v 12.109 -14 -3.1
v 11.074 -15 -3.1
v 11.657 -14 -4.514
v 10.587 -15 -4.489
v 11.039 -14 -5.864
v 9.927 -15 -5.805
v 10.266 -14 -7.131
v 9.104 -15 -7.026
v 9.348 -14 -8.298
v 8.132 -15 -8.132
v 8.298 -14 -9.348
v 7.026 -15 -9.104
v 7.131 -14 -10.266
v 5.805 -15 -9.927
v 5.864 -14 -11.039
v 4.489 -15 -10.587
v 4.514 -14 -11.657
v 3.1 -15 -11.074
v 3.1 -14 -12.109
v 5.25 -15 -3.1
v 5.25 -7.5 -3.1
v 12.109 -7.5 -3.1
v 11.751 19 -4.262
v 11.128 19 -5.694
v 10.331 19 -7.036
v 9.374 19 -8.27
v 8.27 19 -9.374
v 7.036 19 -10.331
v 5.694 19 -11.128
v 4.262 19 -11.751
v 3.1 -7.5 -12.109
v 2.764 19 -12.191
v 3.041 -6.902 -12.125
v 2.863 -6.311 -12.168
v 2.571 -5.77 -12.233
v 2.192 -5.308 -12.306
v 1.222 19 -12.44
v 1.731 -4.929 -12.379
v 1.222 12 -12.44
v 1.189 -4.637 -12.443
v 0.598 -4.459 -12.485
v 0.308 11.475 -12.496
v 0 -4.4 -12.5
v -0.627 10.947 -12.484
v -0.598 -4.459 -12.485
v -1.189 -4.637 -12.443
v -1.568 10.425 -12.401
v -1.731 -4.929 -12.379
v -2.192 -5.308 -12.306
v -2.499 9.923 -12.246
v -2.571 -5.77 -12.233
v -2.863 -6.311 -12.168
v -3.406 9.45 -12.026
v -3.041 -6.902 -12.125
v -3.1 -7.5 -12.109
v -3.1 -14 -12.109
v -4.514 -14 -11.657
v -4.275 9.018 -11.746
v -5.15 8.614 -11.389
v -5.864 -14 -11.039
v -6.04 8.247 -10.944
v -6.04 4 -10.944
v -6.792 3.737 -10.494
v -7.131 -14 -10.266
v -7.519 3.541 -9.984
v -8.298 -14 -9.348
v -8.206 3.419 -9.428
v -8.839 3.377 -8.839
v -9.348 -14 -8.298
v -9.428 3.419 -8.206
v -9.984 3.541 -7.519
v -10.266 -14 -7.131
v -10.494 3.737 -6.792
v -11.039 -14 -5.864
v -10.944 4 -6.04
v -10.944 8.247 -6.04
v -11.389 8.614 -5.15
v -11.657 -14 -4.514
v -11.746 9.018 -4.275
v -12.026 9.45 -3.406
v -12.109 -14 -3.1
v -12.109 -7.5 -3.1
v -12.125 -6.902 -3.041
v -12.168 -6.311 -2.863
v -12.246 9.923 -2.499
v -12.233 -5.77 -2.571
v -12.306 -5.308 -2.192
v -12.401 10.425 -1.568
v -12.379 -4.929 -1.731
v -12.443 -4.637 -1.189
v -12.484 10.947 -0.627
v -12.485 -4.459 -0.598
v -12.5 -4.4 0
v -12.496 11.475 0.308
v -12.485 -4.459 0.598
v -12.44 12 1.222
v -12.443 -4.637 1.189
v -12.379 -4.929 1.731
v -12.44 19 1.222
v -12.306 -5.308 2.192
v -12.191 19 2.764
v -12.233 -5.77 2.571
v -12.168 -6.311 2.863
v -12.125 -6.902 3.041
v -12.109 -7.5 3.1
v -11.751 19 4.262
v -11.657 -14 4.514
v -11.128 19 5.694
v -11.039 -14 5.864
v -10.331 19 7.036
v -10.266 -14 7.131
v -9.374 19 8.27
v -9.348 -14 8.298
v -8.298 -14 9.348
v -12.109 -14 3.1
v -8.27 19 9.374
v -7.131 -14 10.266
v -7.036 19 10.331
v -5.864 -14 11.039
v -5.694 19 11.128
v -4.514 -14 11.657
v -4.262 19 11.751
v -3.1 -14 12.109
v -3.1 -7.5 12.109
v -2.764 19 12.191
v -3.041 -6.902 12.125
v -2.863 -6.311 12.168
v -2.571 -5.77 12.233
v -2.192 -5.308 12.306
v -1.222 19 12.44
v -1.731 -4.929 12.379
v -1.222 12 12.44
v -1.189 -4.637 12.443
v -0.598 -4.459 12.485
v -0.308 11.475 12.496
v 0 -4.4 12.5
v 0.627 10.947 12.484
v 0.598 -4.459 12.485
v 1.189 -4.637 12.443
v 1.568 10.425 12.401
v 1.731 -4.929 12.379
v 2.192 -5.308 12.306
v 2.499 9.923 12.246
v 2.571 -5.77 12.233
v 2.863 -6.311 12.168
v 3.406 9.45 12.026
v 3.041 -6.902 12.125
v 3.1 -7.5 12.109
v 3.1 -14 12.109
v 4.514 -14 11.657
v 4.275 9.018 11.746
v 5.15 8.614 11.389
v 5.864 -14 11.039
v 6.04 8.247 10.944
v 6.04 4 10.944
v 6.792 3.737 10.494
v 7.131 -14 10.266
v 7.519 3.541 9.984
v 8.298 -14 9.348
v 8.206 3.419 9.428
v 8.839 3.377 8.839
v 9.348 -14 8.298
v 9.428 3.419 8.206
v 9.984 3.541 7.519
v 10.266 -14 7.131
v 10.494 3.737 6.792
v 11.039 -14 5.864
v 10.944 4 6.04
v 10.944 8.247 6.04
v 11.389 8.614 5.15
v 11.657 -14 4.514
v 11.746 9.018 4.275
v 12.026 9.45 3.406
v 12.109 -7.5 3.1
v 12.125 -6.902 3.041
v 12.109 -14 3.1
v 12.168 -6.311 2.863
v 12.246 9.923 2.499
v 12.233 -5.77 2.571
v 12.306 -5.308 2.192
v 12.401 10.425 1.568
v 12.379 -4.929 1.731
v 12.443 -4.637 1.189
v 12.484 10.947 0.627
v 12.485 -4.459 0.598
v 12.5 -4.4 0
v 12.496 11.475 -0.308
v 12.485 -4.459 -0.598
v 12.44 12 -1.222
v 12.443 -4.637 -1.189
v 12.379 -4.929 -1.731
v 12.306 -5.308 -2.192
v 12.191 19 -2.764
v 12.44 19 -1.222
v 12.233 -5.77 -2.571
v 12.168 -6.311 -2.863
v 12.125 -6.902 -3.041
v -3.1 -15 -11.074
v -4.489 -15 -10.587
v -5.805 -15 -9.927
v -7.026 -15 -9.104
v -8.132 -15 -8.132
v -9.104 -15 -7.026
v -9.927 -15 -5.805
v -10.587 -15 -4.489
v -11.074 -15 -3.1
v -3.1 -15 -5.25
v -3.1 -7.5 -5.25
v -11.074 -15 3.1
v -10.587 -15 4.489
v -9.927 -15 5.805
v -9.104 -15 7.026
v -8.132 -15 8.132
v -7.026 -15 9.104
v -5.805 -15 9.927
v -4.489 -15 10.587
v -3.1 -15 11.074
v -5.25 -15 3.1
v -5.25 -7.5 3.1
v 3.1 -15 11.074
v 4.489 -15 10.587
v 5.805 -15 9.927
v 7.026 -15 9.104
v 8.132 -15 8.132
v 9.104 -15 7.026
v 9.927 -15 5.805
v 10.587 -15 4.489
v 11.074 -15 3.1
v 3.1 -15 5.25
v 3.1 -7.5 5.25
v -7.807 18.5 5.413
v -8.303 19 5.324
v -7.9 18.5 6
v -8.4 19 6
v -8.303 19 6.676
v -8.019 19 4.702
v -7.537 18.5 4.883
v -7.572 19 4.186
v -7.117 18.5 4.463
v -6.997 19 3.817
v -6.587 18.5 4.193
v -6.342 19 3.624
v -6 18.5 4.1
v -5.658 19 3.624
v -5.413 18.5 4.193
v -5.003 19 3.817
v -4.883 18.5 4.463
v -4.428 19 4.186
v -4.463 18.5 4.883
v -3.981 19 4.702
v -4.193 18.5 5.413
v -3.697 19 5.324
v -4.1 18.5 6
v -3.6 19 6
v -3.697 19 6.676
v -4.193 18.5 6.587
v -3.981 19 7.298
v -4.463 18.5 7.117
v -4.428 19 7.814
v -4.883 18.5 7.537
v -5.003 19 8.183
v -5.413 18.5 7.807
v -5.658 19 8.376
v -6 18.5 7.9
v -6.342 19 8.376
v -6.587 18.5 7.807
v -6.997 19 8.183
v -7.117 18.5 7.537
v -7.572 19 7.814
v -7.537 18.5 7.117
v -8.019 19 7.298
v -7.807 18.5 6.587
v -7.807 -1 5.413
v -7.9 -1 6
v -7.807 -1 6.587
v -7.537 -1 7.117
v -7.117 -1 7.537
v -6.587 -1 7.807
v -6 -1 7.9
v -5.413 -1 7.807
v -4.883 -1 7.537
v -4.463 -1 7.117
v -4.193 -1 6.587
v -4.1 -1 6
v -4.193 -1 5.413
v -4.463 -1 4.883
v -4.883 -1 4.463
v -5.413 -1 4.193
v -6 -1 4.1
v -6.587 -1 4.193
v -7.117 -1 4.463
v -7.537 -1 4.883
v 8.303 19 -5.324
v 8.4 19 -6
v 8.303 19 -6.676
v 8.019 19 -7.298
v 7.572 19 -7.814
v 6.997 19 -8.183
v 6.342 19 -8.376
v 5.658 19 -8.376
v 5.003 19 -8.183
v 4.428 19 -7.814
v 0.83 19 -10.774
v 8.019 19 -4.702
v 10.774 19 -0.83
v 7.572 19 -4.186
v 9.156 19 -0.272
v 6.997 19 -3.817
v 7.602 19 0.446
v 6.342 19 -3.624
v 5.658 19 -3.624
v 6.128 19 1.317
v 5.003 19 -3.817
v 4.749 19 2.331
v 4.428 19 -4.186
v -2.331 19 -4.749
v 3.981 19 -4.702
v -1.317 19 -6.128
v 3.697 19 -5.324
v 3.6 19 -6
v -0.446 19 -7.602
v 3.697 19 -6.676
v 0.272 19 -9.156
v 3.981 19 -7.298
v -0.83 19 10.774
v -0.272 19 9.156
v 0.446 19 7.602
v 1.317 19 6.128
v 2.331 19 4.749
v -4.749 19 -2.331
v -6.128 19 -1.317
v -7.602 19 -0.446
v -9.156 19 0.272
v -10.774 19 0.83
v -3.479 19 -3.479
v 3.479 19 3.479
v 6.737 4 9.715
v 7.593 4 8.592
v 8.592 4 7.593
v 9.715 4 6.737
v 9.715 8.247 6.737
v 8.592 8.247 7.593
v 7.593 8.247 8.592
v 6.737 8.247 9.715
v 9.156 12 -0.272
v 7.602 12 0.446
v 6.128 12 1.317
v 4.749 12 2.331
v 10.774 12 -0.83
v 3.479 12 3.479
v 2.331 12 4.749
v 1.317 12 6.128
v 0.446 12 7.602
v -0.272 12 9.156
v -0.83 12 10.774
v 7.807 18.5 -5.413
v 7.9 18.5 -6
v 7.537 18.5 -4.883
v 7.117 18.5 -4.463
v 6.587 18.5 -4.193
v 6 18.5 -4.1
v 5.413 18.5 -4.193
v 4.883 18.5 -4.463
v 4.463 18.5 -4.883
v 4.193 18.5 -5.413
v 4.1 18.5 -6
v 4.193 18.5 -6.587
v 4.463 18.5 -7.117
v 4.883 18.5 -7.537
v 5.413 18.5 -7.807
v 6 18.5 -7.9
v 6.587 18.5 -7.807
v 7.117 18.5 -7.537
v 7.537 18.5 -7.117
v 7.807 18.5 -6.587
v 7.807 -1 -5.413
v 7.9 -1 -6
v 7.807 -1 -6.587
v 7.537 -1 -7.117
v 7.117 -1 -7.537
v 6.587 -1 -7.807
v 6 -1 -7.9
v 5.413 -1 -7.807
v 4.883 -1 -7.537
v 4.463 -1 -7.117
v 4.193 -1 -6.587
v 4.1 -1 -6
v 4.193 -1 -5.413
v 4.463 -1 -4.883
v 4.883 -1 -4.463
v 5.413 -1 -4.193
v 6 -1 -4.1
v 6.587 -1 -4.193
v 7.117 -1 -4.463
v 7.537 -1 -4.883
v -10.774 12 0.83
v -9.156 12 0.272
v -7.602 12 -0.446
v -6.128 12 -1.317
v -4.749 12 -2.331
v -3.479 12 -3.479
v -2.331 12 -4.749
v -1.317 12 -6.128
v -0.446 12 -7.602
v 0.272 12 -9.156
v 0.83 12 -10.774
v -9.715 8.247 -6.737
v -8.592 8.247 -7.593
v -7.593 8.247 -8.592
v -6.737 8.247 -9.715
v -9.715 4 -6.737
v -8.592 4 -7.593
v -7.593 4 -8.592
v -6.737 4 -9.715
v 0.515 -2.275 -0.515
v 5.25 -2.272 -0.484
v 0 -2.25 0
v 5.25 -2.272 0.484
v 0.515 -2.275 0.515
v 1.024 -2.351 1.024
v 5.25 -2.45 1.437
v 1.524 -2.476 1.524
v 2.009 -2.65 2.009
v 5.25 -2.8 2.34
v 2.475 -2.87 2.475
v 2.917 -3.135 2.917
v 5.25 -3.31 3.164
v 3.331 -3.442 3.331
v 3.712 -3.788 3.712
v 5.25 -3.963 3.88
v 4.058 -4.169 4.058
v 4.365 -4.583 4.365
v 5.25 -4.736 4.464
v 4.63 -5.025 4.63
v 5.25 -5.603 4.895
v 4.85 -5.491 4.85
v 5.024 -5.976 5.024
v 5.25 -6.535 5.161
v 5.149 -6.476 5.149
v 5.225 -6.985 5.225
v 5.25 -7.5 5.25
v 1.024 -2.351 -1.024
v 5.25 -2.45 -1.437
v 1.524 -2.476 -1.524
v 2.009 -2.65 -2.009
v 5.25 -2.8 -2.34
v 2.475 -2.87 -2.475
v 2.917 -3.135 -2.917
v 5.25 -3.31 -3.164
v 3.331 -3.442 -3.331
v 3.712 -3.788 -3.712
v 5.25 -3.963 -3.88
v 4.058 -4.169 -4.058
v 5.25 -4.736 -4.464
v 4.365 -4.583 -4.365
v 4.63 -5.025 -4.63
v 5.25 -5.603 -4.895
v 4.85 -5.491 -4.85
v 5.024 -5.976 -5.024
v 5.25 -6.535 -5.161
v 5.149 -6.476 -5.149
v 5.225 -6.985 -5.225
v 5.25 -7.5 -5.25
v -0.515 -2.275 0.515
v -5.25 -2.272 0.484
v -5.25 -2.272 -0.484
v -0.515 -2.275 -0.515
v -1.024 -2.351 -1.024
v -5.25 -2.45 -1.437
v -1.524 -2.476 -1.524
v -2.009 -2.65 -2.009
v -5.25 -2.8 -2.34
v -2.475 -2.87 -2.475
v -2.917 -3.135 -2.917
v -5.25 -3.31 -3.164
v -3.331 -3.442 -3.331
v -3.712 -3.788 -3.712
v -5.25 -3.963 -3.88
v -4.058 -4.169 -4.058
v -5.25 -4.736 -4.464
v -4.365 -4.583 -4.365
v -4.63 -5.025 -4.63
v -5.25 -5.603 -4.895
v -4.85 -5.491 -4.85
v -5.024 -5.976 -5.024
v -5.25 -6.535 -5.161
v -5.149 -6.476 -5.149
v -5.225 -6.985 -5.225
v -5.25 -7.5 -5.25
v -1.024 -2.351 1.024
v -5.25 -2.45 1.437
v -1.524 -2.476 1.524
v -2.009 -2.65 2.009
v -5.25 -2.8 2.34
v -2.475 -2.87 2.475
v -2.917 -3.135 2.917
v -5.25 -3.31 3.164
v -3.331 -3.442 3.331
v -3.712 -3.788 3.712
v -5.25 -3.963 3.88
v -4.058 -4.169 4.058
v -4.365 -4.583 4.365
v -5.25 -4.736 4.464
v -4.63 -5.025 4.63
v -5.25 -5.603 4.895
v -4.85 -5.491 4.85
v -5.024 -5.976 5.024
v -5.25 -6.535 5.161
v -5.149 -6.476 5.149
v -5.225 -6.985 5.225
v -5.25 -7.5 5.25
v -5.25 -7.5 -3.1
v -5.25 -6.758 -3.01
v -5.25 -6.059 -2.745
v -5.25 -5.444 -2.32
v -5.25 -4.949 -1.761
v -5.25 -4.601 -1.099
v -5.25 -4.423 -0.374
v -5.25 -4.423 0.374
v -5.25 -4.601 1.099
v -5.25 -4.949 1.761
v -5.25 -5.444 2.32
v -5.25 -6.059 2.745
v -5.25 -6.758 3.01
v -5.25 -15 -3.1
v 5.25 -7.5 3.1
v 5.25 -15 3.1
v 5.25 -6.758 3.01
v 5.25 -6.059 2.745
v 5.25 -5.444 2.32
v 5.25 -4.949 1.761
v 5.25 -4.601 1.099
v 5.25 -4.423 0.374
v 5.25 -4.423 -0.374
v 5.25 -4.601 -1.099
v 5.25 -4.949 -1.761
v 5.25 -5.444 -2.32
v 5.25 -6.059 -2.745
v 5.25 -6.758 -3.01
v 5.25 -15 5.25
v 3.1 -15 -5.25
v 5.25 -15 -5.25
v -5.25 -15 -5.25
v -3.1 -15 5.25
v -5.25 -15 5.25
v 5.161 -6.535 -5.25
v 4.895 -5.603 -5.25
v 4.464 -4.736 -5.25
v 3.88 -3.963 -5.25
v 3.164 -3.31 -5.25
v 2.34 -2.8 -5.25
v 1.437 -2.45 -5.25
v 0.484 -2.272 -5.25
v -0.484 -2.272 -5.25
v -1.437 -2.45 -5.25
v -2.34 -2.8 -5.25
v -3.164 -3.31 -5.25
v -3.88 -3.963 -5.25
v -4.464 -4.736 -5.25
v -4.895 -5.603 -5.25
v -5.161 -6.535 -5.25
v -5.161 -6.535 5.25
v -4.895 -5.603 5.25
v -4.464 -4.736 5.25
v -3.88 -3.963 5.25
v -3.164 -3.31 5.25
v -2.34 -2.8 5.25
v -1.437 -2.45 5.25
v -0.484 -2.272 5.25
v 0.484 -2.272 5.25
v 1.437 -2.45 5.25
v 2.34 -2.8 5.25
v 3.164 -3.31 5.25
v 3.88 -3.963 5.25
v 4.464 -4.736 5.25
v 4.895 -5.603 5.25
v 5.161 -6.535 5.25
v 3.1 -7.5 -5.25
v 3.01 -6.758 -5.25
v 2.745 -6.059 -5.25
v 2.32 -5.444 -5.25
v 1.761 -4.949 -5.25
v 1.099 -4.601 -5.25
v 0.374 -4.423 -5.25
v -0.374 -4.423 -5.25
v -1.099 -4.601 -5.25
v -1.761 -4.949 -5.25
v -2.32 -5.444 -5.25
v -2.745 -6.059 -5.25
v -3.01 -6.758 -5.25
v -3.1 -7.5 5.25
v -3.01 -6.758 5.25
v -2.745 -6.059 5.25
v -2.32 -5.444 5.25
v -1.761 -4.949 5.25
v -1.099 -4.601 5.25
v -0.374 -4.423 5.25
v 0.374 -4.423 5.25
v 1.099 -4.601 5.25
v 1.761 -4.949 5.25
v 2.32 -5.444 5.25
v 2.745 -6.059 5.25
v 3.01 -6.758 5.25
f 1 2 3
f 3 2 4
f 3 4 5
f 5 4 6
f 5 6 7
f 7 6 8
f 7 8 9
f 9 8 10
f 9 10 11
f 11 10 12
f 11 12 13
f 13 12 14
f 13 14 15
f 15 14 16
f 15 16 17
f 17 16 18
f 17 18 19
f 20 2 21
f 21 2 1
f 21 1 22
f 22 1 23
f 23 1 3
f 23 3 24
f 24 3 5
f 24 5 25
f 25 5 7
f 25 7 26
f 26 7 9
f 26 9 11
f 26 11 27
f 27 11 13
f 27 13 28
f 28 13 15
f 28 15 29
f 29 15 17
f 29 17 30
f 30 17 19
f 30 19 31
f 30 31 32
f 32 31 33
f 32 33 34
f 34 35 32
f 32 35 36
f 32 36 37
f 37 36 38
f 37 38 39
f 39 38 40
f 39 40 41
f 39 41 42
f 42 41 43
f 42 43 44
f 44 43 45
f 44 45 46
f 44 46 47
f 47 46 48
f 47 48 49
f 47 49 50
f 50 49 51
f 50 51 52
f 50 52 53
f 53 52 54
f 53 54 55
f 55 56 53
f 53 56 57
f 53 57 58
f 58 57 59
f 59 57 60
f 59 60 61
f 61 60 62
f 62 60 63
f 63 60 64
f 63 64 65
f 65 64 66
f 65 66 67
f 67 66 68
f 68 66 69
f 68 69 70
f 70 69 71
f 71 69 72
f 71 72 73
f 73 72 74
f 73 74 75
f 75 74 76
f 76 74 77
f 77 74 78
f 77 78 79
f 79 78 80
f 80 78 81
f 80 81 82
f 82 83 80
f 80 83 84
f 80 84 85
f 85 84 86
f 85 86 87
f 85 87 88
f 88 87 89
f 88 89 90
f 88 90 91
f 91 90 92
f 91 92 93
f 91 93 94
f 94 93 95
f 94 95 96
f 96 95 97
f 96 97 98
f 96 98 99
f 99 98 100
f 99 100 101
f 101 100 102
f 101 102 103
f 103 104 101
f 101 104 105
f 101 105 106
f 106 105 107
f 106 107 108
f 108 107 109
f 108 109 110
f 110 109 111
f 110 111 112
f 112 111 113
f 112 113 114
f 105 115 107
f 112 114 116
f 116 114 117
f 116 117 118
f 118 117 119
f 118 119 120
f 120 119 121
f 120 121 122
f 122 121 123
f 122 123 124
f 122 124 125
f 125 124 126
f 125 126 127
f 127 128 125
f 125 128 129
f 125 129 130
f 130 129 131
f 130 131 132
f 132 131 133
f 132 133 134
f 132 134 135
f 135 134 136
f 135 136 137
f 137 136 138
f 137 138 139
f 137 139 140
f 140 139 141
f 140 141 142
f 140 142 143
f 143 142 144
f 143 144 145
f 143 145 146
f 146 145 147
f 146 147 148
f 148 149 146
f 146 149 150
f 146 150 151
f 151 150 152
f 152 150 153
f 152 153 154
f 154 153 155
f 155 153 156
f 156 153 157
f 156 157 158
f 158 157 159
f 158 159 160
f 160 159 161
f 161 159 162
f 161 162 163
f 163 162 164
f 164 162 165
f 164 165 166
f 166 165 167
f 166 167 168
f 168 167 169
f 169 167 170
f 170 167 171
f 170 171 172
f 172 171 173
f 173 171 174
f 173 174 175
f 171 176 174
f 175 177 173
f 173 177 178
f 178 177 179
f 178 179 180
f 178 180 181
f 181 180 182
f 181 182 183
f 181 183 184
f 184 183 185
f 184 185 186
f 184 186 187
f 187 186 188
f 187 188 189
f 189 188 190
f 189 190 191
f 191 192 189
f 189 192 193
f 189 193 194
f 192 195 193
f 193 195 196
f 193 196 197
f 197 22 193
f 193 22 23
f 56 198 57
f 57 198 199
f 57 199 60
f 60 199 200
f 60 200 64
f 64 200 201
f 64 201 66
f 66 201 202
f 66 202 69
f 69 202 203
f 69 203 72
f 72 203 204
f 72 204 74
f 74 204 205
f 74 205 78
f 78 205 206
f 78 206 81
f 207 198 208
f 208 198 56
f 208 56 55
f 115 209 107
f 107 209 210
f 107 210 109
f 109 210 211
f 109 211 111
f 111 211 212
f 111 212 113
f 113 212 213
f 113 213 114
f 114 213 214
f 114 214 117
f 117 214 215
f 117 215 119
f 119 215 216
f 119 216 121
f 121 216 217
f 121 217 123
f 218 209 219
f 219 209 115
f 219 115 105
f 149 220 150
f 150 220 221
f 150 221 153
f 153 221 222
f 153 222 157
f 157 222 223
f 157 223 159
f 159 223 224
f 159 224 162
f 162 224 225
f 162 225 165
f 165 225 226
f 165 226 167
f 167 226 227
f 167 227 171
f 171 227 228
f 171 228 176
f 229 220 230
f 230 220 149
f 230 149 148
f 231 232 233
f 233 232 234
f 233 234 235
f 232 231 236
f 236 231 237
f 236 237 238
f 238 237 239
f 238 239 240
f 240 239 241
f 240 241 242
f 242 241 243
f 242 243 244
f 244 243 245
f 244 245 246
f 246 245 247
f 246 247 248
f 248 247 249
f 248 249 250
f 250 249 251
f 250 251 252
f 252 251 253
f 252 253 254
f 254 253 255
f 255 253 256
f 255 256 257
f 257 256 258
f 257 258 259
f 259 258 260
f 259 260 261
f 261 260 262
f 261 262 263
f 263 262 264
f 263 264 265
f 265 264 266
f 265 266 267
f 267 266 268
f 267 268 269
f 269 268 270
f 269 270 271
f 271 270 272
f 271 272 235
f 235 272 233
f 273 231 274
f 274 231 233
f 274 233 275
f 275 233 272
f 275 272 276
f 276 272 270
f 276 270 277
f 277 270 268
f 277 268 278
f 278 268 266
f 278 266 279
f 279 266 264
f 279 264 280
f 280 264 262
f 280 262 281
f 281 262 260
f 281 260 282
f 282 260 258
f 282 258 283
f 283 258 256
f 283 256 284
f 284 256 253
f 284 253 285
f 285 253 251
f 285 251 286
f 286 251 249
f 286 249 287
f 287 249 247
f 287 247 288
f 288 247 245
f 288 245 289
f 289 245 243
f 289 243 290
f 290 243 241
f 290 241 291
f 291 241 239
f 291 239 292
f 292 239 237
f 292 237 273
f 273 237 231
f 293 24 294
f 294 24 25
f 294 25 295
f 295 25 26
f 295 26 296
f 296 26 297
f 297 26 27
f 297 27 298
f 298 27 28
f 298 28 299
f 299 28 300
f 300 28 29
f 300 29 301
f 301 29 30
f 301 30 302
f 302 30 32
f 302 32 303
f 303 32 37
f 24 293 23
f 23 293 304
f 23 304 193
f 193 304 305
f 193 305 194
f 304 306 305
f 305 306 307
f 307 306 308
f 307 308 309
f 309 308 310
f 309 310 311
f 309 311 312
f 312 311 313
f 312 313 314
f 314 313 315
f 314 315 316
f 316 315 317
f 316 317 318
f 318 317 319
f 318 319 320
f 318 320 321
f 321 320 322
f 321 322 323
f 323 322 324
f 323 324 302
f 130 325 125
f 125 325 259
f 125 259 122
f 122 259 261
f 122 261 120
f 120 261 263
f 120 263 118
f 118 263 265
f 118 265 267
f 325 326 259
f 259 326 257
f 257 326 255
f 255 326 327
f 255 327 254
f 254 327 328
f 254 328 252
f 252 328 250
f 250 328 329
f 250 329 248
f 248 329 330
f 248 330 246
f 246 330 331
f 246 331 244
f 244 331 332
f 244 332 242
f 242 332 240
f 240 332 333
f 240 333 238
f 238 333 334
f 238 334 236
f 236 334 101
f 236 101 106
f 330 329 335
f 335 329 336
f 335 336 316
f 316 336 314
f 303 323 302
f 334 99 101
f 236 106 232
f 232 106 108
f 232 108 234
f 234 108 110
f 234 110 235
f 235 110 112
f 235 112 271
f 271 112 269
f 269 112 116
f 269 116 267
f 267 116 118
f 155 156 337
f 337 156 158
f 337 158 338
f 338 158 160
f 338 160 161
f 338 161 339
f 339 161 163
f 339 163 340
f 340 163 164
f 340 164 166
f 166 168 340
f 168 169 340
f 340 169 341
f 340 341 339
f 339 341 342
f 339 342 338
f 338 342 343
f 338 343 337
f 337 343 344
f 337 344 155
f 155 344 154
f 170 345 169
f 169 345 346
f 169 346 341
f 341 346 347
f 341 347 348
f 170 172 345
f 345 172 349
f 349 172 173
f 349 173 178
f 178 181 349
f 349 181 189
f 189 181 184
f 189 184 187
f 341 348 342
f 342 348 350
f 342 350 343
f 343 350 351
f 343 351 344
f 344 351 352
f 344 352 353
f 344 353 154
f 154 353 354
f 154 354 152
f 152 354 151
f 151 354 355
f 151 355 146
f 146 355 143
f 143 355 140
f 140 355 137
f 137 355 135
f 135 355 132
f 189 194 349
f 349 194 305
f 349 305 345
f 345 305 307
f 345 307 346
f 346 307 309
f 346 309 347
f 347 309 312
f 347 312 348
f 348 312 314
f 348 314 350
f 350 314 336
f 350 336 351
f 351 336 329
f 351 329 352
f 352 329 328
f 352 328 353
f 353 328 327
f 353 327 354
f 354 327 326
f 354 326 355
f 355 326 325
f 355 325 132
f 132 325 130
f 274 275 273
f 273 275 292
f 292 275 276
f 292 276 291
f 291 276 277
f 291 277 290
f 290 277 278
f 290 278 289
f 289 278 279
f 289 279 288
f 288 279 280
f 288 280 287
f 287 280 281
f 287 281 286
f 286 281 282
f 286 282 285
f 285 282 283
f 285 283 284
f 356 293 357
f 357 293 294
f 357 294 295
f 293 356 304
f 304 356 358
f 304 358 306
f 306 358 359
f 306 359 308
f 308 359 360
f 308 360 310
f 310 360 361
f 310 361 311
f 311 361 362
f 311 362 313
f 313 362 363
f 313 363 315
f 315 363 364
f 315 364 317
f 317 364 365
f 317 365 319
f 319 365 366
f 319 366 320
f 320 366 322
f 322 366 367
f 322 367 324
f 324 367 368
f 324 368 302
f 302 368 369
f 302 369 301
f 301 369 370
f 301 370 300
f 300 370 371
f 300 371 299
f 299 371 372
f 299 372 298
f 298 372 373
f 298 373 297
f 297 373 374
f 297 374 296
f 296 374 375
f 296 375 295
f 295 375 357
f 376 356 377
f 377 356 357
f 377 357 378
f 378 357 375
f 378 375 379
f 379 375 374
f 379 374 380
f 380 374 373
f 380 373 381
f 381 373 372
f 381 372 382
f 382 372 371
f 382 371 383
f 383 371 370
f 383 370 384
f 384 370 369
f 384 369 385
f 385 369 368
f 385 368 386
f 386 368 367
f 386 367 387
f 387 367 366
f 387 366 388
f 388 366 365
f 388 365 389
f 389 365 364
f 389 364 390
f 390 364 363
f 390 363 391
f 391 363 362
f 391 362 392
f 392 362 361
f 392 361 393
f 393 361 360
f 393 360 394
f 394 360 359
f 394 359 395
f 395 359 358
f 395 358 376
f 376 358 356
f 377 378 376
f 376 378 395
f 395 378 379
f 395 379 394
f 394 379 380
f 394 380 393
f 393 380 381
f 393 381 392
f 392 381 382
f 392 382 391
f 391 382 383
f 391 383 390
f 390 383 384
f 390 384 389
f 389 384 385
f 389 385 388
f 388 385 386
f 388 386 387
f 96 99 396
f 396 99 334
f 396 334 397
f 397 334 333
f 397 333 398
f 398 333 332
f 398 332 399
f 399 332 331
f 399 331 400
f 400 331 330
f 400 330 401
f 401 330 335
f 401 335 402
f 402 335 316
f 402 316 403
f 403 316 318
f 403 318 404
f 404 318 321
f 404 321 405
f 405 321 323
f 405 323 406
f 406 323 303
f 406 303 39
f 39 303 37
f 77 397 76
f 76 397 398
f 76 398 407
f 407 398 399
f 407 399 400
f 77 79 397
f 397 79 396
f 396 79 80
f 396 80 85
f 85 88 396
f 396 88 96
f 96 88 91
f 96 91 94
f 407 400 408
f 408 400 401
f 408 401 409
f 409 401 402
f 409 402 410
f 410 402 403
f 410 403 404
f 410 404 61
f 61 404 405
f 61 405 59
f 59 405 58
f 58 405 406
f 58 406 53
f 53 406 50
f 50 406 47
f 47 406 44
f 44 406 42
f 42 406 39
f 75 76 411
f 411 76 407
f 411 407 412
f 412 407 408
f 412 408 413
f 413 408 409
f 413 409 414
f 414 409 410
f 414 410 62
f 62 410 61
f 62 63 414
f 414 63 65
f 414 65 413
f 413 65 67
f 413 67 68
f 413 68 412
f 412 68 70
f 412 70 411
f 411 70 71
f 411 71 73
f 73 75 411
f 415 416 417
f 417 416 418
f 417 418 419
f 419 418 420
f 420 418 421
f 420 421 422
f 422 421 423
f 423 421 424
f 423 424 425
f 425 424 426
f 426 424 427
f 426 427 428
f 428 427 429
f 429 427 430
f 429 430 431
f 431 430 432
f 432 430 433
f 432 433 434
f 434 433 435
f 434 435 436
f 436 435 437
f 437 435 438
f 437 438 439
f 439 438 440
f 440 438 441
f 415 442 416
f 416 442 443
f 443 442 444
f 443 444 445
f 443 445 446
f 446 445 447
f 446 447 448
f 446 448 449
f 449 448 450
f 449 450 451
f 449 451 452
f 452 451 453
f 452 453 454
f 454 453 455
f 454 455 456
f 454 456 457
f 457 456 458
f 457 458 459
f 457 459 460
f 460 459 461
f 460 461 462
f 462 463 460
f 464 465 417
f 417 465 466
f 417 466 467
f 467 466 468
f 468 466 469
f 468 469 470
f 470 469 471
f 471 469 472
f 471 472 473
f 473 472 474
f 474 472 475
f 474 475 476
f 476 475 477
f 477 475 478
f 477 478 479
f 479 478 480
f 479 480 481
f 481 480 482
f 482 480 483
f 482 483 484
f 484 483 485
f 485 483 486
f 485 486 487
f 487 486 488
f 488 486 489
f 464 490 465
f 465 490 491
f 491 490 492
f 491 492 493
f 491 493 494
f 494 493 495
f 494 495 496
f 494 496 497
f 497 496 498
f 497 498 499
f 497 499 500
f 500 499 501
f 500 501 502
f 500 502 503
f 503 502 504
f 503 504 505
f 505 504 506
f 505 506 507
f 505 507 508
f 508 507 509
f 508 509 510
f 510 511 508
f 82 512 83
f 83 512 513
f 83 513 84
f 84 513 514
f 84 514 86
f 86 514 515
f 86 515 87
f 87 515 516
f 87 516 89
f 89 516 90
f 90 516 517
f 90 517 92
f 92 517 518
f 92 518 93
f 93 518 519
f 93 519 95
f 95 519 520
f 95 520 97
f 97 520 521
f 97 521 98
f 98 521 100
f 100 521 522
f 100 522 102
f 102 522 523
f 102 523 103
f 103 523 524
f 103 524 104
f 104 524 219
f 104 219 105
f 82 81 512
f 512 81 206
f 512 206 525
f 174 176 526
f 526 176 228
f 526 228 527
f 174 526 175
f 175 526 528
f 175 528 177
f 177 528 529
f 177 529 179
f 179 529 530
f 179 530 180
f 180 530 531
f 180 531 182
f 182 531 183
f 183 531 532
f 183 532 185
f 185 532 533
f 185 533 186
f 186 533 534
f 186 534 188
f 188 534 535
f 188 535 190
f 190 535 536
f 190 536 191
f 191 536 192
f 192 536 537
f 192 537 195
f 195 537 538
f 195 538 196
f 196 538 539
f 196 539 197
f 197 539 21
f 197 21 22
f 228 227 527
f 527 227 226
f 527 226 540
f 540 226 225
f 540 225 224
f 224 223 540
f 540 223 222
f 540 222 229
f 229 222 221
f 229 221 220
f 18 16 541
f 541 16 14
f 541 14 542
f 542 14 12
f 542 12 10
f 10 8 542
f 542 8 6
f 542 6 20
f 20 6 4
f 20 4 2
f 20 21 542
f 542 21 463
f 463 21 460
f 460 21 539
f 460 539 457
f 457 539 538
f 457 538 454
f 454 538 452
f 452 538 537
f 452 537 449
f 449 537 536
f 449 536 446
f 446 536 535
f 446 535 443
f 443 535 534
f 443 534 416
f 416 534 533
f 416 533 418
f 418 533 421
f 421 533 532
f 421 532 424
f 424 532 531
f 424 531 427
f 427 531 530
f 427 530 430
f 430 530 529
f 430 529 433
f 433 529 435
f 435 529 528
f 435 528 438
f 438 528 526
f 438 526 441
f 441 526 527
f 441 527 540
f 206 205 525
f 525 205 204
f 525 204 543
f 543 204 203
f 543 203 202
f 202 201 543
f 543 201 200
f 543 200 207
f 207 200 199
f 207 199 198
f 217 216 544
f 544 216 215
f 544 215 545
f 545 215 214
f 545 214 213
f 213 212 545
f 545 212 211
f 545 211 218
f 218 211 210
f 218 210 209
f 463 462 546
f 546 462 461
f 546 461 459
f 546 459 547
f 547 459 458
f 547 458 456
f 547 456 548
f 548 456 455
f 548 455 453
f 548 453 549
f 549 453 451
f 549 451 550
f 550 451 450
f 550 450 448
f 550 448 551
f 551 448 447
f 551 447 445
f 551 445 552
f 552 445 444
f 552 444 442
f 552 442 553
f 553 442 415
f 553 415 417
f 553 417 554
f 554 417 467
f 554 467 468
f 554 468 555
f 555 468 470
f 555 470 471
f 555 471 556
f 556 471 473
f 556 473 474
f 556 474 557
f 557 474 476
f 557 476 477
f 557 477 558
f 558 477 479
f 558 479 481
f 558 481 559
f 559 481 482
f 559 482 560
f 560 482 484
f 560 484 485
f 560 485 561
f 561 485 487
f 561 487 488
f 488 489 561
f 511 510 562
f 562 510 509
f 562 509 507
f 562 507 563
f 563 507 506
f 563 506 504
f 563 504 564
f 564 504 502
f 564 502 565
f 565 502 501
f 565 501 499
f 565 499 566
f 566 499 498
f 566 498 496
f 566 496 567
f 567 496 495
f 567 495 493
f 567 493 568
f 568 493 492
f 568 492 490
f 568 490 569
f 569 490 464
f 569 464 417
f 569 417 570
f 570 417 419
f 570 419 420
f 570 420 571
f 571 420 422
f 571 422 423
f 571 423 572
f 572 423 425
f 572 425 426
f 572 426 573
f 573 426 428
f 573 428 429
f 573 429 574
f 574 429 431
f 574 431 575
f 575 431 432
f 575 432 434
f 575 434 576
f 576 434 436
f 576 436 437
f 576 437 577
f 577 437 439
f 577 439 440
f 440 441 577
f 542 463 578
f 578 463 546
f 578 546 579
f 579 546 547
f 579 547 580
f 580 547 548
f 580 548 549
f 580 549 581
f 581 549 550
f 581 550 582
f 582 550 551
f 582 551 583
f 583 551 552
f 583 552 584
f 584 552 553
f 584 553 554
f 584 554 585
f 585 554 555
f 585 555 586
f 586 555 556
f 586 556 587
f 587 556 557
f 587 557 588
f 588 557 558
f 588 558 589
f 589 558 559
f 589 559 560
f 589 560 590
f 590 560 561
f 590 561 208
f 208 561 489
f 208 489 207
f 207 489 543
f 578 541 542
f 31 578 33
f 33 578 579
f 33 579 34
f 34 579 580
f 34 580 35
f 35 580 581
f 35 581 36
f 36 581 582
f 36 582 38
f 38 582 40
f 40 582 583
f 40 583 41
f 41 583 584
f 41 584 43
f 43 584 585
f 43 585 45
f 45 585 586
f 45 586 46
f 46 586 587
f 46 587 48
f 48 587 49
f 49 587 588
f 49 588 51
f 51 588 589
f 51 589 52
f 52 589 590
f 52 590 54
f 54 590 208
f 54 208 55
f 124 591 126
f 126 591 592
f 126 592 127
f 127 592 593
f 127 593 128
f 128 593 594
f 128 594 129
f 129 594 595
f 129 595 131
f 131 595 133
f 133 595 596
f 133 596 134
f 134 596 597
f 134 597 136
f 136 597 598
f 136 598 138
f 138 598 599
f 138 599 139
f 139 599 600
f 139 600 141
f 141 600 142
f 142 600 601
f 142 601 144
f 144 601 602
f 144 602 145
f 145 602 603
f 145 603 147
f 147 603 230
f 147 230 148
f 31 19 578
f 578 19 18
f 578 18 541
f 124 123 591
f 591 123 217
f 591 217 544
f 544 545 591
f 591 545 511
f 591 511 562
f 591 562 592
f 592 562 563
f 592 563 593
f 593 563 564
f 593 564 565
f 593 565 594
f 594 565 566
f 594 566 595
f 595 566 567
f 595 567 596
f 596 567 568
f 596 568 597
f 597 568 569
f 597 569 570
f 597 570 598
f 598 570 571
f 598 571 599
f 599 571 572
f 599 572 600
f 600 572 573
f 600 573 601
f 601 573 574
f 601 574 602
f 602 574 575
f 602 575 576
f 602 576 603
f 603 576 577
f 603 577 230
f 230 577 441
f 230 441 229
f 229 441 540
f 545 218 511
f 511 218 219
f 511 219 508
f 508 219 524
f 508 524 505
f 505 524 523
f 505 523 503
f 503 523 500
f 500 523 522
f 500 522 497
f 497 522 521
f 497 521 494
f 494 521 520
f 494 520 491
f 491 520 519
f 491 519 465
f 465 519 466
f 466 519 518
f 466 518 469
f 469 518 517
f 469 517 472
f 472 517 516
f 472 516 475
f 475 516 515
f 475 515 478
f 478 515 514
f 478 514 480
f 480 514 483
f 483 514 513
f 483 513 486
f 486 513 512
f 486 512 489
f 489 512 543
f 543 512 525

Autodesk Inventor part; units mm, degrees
ref_plane "XZ Plane" through (0, 0, 0) normal (0, 1, 0) x (-1, 0, 0)
sketch "Sketch1" plane through (0, 0, 0) normal (0, 1, 0) x (-1, 0, 0)
  circle A0 centre (0, 0) radius 12.5
  dimension "d0" = 25
extrude "Extrusion1" add sketch "Sketch1" along normal blind 19 and the other way blind 15
sketch "Sketch2" plane through (0, 0, 0) normal (0, 0, 1) x (1, 0, 0)
  line L0 (-5.25, -15) -> (-5.25, -7.5)
  arc A0 (5.25, -7.5) -> (-5.25, -7.5) centre (0, -7.5) ccw
  line L1 (5.25, -7.5) -> (5.25, -15)
  line L2 (5.25, -15) -> (-5.25, -15)
  line L3 (-3.1, -15) -> (-3.1, -7.5)
  arc A1 (3.1, -7.5) -> (-3.1, -7.5) centre (0, -7.5) ccw
  line L4 (3.1, -7.5) -> (3.1, -15)
  line L5 (0, 0) -> (0, -15) construction
  line L6 (-12.5, -15) -> (12.5, -15) projected
  point P0 (0, -7.5)
  dimension "d5" = 10.5
  dimension "d6" = 6.2
extrude "Extrusion2" cut sketch "Sketch2" along normal mid plane 10.5
extrude "Extrusion3" cut sketch "Sketch2" against normal through all both and the other way through all contours L3 A1 L4 L2
pattern_circular "Circular Pattern1" count 2 over 90 about axis through (0, -10, 0) along (0, 1, 0) of "Extrusion2", "Extrusion3"
ref_plane "Work Plane2" through (0, 0, 0) normal (0.7071, 0, -0.7071) x (0, 1, 0)
sketch "Sketch5" plane through (0, 0, 0) normal (0.7071, 0, -0.7071) x (0, 1, 0)
  line L0 (19, -21.9203) -> (-2.0622, -21.9203)
  line L1 (-21.8122, 0) -> (25.8729, 0) projected
  line L2 (19, -12.5) -> (19, 12.5) projected
  line L3 (19, -21.9203) -> (19, -4.9203)
  line L4 (19, -4.9203) -> (12, -4.9203)
  line L5 (12, -4.9203) -> (8.2472, -11.4203)
  line L6 (8.2472, -11.4203) -> (4, -11.4203)
  line L7 (4, -11.4203) -> (-2.0622, -21.9203)
  point P0 (0, 0)
  dimension "d40" = 21.9203
  dimension "d41" = 34
  dimension "d42" = 7
  dimension "d43" = 21
  dimension "d44" = 15
  dimension "d45" = 60
revolve "Revolution1" cut sketch "Sketch5" angle 360 about axis through (-15.5, 19, -15.5) along (0, -1, 0)
sketch "Sketch6" plane through (0, 19, 0) normal (0, 1, 0) x (1, 0, 0)
  circle A0 centre (6, 6) radius 1.9
  point P0 (0, 0)
  dimension "d47" = 3.8
  dimension "d48" = 6
  dimension "d49" = 6
extrude "Extrusion9" cut sketch "Sketch6" against normal blind 20
chamfer "Chamfer2" distance 0.5 angle 45 1 edges at (4.1, 19, -6)
pattern_circular "Circular Pattern4" count 2 over 360 about axis through (0, -10, 0) along (0, 1, 0) of "Revolution1", "Extrusion9", "Chamfer2"
chamfer "Chamfer1" distance 1 angle 45 4 edges at (8.8388, -15, 8.8388) (-8.8388, -15, 8.8388) (-8.8388, -15, -8.8388) (8.8388, -15, -8.8388)
equation "\"d49\" = d48"
properties part number "mount-stem_3DPrint"
